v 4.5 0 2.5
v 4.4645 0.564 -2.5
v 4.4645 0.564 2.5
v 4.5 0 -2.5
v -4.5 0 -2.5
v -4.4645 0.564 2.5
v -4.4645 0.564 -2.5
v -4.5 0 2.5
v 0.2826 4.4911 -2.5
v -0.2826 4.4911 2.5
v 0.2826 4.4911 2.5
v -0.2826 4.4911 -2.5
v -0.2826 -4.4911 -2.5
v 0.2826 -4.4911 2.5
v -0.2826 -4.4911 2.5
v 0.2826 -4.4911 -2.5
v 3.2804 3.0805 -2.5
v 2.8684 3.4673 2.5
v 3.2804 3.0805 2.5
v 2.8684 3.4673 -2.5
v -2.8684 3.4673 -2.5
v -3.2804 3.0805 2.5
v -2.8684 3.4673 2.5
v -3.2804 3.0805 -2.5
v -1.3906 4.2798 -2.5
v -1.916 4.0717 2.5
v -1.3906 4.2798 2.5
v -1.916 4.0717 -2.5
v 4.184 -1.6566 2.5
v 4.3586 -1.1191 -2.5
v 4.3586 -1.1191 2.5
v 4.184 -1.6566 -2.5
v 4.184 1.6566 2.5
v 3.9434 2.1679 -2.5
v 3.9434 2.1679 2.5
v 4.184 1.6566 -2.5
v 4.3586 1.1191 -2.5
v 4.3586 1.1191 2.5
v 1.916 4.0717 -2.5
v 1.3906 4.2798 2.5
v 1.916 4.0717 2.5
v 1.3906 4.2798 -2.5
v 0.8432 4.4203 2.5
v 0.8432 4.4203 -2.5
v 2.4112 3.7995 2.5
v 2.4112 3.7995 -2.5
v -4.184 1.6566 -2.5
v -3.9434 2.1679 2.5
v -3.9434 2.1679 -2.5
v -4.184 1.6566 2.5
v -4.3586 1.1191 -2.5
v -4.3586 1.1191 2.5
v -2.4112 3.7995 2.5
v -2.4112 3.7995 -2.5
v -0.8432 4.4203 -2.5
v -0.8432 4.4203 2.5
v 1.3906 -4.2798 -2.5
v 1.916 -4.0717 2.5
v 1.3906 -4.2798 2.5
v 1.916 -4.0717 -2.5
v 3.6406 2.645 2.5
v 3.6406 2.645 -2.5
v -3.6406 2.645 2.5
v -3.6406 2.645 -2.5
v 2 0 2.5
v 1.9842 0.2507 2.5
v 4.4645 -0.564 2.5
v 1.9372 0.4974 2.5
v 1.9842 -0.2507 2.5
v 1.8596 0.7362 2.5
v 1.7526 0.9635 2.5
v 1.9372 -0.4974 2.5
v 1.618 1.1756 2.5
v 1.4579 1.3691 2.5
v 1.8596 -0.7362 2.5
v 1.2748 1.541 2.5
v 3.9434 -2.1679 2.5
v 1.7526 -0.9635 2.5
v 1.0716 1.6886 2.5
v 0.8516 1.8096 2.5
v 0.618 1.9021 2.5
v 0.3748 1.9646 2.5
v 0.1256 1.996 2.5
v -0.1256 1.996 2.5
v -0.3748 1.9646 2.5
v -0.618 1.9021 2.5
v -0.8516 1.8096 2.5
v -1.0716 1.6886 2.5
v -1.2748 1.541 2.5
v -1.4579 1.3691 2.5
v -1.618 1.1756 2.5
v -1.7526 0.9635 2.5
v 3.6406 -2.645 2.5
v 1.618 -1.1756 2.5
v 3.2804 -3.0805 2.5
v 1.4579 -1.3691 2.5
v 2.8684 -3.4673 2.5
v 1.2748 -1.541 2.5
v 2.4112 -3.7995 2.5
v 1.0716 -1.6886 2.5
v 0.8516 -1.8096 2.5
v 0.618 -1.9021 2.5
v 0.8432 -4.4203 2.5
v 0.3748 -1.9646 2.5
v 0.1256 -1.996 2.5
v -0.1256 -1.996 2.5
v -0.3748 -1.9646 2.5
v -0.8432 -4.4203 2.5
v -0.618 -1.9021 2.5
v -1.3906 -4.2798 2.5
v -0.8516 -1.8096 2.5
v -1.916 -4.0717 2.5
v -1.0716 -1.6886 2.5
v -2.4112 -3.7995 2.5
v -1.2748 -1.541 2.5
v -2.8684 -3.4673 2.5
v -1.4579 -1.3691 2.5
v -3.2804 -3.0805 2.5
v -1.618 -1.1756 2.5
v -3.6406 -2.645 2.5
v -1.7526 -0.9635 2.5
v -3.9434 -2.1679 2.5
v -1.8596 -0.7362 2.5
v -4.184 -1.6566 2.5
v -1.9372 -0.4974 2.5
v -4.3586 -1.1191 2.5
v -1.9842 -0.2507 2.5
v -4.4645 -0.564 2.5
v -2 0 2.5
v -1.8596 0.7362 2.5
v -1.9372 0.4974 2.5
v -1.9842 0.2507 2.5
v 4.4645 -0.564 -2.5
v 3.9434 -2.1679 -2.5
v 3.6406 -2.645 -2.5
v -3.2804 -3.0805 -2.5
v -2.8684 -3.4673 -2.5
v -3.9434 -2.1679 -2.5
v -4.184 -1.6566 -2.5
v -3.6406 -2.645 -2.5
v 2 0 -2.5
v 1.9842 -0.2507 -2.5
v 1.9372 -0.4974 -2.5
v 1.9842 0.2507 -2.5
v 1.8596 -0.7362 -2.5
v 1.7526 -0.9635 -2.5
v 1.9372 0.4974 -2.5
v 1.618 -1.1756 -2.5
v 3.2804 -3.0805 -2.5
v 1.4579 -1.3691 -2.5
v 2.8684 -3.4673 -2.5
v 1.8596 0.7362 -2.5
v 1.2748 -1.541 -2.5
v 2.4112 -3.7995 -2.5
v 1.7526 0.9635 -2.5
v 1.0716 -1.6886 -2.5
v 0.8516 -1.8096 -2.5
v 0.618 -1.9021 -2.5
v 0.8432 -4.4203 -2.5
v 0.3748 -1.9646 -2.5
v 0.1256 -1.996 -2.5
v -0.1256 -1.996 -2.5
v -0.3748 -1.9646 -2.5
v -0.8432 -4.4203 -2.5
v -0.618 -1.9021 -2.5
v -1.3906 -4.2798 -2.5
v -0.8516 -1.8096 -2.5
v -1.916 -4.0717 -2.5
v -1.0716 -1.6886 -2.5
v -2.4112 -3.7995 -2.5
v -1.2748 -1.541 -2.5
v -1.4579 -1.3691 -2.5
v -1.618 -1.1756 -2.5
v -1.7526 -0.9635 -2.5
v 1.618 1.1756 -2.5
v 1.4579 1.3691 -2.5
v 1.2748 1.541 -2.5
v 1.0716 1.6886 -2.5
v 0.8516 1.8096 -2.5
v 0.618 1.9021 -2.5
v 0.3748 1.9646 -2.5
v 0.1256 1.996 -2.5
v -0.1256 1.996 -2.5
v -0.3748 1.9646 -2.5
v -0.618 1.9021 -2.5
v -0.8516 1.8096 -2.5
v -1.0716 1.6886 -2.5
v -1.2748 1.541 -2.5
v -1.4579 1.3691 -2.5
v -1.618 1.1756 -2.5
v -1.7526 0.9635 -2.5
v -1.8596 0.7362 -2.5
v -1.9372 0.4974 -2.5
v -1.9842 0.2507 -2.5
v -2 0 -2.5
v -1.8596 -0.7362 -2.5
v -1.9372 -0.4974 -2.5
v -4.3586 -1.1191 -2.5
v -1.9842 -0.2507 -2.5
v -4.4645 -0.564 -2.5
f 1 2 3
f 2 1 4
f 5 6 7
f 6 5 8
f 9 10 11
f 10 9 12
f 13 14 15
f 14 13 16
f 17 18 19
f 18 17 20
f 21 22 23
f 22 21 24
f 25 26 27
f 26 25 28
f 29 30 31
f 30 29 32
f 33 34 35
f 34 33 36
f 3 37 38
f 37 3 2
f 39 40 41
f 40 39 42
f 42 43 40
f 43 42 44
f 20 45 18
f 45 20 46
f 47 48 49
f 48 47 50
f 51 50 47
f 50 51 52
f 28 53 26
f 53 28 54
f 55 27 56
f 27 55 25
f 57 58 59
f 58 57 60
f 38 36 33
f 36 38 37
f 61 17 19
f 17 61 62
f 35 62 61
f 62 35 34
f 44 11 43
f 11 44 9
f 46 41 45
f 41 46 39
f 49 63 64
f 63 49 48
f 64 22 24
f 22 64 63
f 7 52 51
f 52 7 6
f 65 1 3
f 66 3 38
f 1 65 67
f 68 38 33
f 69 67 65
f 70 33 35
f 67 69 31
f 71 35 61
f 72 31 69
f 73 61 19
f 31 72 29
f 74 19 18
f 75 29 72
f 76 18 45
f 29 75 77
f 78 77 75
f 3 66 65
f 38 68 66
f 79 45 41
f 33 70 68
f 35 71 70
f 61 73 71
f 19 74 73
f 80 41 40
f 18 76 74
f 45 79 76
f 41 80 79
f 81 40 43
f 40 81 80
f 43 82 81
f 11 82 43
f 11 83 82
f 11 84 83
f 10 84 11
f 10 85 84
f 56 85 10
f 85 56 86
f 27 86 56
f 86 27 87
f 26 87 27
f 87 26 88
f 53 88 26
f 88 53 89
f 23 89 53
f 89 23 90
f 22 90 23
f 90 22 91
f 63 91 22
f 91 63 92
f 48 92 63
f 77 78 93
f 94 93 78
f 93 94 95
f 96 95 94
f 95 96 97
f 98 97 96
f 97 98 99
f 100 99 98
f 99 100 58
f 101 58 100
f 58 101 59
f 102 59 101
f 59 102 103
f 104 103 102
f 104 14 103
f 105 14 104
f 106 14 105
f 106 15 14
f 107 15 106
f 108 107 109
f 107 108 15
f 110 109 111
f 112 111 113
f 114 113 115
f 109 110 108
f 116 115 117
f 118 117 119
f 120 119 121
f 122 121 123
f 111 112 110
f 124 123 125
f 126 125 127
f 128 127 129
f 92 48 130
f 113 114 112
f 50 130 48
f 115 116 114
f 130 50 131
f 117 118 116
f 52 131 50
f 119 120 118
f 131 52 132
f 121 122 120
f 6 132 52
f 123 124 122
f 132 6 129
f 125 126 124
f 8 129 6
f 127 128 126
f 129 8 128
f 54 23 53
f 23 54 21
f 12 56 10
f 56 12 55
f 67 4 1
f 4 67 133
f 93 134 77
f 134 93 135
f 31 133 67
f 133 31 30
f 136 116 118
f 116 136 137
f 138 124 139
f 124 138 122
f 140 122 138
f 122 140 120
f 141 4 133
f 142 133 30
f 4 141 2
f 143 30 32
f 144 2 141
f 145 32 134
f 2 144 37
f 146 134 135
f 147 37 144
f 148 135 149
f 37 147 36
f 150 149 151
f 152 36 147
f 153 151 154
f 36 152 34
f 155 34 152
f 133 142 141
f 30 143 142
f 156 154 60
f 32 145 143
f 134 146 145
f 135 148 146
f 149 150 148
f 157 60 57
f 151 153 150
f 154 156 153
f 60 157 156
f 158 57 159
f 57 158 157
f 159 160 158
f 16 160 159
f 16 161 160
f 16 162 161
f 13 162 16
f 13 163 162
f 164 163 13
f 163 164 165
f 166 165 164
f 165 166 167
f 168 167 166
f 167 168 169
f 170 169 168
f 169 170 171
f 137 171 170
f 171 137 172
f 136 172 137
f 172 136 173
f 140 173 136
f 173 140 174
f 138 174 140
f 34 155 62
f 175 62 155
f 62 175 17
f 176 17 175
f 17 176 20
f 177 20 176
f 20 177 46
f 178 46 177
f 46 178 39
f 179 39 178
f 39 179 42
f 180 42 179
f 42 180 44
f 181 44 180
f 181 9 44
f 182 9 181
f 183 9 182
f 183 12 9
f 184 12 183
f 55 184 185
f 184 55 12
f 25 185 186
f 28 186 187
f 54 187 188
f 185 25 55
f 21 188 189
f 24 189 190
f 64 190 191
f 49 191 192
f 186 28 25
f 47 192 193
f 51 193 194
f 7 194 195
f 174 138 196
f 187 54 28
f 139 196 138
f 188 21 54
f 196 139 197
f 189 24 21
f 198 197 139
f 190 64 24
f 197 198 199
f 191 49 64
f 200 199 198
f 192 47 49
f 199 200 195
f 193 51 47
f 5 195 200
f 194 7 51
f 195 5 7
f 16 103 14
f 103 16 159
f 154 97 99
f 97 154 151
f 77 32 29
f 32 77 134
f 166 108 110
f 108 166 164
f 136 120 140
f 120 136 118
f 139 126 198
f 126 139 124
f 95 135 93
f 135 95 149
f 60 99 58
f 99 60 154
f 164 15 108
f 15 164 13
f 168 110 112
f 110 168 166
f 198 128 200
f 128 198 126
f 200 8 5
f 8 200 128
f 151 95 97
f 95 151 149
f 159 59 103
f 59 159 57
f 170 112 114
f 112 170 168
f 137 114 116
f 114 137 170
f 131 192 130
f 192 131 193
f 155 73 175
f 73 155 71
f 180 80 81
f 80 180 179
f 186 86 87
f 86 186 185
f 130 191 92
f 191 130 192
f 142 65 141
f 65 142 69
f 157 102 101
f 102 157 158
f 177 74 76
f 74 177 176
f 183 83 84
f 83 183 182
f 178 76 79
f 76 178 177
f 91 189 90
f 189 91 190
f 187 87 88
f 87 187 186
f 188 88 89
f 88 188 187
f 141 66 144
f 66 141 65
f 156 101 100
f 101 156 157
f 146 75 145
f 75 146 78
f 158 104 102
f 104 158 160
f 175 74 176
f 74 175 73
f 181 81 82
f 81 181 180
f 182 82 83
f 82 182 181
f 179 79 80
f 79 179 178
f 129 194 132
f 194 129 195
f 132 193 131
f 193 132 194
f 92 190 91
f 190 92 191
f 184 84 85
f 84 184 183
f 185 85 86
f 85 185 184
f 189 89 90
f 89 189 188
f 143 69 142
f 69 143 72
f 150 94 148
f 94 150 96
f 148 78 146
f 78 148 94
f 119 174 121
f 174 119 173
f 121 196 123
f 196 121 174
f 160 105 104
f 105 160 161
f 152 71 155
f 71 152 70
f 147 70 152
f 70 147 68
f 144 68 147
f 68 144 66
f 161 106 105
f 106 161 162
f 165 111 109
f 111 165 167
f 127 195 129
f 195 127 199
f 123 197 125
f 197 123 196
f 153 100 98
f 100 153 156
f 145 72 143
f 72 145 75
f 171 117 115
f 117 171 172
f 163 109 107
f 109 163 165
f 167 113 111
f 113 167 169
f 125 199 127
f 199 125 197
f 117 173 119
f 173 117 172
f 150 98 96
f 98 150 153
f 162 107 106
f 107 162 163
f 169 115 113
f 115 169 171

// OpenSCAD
$fn = 50;


difference() {
	union() {
		translate(v = [0, 0, -2.5000000000]) {
			cylinder(h = 5, r = 4.5000000000);
		}
	}
	union() {
		translate(v = [0, 0, -100.0000000000]) {
			cylinder(h = 200, r = 2);
		}
	}
}
